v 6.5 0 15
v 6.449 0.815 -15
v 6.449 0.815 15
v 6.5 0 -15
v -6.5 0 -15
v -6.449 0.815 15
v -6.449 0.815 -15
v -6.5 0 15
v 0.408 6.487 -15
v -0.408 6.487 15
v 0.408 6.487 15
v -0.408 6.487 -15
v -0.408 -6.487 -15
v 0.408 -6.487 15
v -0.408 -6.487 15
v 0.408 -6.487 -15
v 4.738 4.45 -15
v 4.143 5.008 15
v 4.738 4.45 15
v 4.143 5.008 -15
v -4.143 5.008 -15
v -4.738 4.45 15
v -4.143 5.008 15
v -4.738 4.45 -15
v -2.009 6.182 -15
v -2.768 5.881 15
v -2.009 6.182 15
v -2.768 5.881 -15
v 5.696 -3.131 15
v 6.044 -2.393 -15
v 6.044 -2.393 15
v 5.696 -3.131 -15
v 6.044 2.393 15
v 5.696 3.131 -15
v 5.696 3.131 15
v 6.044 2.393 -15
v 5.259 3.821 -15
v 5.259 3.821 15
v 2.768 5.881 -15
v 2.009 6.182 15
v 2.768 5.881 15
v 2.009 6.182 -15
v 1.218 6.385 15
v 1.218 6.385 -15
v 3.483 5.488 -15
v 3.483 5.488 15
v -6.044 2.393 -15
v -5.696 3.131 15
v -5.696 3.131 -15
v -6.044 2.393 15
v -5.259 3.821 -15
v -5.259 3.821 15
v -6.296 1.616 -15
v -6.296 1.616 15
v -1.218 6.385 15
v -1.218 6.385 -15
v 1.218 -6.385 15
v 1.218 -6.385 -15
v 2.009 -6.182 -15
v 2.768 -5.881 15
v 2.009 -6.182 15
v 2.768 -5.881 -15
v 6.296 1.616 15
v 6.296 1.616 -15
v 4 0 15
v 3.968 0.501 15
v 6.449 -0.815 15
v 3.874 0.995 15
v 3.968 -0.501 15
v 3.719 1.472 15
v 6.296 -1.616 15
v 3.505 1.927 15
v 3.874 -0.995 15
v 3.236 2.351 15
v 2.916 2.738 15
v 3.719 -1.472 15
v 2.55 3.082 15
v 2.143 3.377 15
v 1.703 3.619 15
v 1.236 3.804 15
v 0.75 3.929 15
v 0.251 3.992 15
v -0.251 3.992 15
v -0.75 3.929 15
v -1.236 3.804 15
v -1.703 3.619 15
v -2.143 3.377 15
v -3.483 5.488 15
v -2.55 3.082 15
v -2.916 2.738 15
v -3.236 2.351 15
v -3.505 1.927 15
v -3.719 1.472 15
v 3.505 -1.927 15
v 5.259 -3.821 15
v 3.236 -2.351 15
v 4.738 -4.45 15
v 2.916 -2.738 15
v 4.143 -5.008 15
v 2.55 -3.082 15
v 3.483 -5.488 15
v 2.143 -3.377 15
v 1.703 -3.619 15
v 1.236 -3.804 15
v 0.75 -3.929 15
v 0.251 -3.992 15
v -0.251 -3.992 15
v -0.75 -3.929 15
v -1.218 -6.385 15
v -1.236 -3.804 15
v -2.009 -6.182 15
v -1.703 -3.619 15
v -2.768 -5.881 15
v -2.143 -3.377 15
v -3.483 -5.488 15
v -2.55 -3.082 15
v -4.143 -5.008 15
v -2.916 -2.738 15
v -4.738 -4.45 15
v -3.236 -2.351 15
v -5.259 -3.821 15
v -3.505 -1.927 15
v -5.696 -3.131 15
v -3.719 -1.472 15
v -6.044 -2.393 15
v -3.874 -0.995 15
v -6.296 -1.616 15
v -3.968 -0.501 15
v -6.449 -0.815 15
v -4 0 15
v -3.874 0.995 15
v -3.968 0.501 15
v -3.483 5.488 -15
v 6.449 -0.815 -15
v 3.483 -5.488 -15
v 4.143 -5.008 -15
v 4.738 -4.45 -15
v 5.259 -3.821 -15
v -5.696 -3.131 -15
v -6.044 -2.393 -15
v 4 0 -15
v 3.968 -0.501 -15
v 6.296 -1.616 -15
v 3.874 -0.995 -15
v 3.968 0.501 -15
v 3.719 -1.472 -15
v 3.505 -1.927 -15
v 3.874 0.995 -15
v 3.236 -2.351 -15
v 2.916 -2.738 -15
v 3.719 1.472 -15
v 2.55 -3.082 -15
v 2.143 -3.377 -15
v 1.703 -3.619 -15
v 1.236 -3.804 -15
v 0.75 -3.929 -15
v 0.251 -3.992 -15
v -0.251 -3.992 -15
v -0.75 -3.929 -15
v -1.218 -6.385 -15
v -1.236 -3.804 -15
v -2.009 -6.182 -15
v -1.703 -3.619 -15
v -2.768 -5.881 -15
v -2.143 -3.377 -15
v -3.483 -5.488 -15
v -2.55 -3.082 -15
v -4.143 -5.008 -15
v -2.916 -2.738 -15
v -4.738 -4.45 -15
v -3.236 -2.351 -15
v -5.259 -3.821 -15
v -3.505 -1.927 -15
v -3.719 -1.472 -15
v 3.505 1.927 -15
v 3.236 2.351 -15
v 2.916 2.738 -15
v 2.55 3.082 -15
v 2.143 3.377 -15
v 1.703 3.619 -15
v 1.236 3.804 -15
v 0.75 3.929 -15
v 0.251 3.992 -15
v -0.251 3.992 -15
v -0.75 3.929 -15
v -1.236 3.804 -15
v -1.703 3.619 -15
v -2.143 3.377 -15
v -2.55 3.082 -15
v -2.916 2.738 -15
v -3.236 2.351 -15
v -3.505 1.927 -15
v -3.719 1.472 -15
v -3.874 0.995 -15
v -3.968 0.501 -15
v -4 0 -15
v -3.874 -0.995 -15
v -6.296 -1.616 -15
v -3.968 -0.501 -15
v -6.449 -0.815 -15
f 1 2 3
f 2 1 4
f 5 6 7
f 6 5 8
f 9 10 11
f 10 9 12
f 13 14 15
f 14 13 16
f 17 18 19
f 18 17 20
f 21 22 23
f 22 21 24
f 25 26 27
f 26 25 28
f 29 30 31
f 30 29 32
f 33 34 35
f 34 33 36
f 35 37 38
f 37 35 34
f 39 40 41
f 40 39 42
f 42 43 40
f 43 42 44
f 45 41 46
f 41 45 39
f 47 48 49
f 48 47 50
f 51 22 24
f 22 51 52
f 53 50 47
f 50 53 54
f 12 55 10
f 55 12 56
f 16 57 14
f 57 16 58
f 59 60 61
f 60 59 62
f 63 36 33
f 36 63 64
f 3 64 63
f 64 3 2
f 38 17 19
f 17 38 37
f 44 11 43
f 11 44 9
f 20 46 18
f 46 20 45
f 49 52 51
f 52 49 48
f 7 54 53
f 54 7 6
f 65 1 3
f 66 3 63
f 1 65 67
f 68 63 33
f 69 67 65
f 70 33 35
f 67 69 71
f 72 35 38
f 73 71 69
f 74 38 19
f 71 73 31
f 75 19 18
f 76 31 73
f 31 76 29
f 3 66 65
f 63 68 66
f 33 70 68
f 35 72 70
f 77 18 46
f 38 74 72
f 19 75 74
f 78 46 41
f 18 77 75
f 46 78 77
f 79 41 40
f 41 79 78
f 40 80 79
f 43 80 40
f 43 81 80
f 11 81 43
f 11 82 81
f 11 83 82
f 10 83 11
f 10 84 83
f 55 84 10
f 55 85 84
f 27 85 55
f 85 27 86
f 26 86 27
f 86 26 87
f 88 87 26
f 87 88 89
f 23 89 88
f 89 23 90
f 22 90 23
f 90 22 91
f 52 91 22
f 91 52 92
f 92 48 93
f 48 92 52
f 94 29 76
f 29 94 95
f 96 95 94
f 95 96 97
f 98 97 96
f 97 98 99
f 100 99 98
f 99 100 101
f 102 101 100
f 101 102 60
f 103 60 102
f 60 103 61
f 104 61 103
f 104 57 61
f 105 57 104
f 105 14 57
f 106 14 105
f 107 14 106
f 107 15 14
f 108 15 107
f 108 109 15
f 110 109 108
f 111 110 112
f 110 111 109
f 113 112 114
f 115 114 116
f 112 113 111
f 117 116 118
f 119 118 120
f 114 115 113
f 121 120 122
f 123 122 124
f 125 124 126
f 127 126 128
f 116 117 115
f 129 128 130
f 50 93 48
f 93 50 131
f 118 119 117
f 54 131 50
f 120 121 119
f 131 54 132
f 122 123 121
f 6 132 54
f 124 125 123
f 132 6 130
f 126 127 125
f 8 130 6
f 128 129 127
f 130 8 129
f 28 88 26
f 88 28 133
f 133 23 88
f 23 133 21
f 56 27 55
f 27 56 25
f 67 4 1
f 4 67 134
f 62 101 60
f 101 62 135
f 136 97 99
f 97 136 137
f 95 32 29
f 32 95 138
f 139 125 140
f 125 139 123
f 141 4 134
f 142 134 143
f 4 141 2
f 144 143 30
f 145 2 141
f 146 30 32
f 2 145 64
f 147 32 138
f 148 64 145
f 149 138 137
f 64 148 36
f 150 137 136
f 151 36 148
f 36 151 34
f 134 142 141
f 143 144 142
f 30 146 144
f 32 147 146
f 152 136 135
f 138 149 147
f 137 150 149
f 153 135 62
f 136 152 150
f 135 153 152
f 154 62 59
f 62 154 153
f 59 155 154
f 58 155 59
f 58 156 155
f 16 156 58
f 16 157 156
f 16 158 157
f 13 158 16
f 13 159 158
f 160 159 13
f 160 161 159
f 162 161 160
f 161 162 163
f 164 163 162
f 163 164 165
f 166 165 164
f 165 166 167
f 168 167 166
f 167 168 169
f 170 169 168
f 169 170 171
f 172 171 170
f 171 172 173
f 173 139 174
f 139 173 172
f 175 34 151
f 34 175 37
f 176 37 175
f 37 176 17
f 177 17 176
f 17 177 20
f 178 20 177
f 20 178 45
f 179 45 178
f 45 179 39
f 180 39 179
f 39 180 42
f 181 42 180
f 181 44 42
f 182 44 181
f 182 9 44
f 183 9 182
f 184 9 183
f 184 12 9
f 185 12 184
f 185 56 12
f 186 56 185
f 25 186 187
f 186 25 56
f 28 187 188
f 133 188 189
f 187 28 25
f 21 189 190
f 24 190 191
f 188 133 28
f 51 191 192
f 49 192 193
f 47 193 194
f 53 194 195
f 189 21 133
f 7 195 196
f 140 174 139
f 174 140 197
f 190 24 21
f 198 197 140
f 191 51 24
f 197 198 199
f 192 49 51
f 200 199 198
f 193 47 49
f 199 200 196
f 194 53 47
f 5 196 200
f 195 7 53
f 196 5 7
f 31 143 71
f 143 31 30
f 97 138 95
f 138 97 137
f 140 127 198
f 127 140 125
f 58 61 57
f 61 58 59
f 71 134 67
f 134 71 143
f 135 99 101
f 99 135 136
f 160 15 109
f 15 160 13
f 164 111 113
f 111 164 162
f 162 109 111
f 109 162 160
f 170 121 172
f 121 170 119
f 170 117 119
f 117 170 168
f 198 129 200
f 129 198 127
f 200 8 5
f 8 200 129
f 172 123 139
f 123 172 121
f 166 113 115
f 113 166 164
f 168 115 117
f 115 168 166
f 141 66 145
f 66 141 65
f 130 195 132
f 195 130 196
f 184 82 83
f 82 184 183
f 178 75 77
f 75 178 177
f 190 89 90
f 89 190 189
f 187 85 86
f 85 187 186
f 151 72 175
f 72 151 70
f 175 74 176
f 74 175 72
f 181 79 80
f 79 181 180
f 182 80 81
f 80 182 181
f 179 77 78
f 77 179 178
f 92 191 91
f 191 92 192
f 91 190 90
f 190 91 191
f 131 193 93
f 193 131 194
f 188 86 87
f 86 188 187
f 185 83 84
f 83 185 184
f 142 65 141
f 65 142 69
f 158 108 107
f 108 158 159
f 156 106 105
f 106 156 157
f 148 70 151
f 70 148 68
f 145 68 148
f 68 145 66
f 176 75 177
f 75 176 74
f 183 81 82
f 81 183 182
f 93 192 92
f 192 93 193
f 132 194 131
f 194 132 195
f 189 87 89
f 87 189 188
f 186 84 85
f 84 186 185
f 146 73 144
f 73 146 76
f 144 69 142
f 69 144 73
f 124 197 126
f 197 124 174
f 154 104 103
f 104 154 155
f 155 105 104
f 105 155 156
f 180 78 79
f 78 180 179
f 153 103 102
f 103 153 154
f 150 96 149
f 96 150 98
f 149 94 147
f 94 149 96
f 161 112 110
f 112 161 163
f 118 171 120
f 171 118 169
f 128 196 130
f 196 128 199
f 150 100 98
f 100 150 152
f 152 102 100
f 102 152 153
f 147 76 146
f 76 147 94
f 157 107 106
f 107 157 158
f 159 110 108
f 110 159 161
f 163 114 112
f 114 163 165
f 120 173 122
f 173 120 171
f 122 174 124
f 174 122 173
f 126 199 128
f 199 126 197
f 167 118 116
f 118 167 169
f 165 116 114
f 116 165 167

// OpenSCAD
$fn = 50;


difference() {
	union() {
		translate(v = [0, 0, -15.0000000000]) {
			cylinder(h = 30, r = 6.5000000000);
		}
	}
	union() {
		translate(v = [0, 0, -100.0000000000]) {
			cylinder(h = 200, r = 4);
		}
	}
}
